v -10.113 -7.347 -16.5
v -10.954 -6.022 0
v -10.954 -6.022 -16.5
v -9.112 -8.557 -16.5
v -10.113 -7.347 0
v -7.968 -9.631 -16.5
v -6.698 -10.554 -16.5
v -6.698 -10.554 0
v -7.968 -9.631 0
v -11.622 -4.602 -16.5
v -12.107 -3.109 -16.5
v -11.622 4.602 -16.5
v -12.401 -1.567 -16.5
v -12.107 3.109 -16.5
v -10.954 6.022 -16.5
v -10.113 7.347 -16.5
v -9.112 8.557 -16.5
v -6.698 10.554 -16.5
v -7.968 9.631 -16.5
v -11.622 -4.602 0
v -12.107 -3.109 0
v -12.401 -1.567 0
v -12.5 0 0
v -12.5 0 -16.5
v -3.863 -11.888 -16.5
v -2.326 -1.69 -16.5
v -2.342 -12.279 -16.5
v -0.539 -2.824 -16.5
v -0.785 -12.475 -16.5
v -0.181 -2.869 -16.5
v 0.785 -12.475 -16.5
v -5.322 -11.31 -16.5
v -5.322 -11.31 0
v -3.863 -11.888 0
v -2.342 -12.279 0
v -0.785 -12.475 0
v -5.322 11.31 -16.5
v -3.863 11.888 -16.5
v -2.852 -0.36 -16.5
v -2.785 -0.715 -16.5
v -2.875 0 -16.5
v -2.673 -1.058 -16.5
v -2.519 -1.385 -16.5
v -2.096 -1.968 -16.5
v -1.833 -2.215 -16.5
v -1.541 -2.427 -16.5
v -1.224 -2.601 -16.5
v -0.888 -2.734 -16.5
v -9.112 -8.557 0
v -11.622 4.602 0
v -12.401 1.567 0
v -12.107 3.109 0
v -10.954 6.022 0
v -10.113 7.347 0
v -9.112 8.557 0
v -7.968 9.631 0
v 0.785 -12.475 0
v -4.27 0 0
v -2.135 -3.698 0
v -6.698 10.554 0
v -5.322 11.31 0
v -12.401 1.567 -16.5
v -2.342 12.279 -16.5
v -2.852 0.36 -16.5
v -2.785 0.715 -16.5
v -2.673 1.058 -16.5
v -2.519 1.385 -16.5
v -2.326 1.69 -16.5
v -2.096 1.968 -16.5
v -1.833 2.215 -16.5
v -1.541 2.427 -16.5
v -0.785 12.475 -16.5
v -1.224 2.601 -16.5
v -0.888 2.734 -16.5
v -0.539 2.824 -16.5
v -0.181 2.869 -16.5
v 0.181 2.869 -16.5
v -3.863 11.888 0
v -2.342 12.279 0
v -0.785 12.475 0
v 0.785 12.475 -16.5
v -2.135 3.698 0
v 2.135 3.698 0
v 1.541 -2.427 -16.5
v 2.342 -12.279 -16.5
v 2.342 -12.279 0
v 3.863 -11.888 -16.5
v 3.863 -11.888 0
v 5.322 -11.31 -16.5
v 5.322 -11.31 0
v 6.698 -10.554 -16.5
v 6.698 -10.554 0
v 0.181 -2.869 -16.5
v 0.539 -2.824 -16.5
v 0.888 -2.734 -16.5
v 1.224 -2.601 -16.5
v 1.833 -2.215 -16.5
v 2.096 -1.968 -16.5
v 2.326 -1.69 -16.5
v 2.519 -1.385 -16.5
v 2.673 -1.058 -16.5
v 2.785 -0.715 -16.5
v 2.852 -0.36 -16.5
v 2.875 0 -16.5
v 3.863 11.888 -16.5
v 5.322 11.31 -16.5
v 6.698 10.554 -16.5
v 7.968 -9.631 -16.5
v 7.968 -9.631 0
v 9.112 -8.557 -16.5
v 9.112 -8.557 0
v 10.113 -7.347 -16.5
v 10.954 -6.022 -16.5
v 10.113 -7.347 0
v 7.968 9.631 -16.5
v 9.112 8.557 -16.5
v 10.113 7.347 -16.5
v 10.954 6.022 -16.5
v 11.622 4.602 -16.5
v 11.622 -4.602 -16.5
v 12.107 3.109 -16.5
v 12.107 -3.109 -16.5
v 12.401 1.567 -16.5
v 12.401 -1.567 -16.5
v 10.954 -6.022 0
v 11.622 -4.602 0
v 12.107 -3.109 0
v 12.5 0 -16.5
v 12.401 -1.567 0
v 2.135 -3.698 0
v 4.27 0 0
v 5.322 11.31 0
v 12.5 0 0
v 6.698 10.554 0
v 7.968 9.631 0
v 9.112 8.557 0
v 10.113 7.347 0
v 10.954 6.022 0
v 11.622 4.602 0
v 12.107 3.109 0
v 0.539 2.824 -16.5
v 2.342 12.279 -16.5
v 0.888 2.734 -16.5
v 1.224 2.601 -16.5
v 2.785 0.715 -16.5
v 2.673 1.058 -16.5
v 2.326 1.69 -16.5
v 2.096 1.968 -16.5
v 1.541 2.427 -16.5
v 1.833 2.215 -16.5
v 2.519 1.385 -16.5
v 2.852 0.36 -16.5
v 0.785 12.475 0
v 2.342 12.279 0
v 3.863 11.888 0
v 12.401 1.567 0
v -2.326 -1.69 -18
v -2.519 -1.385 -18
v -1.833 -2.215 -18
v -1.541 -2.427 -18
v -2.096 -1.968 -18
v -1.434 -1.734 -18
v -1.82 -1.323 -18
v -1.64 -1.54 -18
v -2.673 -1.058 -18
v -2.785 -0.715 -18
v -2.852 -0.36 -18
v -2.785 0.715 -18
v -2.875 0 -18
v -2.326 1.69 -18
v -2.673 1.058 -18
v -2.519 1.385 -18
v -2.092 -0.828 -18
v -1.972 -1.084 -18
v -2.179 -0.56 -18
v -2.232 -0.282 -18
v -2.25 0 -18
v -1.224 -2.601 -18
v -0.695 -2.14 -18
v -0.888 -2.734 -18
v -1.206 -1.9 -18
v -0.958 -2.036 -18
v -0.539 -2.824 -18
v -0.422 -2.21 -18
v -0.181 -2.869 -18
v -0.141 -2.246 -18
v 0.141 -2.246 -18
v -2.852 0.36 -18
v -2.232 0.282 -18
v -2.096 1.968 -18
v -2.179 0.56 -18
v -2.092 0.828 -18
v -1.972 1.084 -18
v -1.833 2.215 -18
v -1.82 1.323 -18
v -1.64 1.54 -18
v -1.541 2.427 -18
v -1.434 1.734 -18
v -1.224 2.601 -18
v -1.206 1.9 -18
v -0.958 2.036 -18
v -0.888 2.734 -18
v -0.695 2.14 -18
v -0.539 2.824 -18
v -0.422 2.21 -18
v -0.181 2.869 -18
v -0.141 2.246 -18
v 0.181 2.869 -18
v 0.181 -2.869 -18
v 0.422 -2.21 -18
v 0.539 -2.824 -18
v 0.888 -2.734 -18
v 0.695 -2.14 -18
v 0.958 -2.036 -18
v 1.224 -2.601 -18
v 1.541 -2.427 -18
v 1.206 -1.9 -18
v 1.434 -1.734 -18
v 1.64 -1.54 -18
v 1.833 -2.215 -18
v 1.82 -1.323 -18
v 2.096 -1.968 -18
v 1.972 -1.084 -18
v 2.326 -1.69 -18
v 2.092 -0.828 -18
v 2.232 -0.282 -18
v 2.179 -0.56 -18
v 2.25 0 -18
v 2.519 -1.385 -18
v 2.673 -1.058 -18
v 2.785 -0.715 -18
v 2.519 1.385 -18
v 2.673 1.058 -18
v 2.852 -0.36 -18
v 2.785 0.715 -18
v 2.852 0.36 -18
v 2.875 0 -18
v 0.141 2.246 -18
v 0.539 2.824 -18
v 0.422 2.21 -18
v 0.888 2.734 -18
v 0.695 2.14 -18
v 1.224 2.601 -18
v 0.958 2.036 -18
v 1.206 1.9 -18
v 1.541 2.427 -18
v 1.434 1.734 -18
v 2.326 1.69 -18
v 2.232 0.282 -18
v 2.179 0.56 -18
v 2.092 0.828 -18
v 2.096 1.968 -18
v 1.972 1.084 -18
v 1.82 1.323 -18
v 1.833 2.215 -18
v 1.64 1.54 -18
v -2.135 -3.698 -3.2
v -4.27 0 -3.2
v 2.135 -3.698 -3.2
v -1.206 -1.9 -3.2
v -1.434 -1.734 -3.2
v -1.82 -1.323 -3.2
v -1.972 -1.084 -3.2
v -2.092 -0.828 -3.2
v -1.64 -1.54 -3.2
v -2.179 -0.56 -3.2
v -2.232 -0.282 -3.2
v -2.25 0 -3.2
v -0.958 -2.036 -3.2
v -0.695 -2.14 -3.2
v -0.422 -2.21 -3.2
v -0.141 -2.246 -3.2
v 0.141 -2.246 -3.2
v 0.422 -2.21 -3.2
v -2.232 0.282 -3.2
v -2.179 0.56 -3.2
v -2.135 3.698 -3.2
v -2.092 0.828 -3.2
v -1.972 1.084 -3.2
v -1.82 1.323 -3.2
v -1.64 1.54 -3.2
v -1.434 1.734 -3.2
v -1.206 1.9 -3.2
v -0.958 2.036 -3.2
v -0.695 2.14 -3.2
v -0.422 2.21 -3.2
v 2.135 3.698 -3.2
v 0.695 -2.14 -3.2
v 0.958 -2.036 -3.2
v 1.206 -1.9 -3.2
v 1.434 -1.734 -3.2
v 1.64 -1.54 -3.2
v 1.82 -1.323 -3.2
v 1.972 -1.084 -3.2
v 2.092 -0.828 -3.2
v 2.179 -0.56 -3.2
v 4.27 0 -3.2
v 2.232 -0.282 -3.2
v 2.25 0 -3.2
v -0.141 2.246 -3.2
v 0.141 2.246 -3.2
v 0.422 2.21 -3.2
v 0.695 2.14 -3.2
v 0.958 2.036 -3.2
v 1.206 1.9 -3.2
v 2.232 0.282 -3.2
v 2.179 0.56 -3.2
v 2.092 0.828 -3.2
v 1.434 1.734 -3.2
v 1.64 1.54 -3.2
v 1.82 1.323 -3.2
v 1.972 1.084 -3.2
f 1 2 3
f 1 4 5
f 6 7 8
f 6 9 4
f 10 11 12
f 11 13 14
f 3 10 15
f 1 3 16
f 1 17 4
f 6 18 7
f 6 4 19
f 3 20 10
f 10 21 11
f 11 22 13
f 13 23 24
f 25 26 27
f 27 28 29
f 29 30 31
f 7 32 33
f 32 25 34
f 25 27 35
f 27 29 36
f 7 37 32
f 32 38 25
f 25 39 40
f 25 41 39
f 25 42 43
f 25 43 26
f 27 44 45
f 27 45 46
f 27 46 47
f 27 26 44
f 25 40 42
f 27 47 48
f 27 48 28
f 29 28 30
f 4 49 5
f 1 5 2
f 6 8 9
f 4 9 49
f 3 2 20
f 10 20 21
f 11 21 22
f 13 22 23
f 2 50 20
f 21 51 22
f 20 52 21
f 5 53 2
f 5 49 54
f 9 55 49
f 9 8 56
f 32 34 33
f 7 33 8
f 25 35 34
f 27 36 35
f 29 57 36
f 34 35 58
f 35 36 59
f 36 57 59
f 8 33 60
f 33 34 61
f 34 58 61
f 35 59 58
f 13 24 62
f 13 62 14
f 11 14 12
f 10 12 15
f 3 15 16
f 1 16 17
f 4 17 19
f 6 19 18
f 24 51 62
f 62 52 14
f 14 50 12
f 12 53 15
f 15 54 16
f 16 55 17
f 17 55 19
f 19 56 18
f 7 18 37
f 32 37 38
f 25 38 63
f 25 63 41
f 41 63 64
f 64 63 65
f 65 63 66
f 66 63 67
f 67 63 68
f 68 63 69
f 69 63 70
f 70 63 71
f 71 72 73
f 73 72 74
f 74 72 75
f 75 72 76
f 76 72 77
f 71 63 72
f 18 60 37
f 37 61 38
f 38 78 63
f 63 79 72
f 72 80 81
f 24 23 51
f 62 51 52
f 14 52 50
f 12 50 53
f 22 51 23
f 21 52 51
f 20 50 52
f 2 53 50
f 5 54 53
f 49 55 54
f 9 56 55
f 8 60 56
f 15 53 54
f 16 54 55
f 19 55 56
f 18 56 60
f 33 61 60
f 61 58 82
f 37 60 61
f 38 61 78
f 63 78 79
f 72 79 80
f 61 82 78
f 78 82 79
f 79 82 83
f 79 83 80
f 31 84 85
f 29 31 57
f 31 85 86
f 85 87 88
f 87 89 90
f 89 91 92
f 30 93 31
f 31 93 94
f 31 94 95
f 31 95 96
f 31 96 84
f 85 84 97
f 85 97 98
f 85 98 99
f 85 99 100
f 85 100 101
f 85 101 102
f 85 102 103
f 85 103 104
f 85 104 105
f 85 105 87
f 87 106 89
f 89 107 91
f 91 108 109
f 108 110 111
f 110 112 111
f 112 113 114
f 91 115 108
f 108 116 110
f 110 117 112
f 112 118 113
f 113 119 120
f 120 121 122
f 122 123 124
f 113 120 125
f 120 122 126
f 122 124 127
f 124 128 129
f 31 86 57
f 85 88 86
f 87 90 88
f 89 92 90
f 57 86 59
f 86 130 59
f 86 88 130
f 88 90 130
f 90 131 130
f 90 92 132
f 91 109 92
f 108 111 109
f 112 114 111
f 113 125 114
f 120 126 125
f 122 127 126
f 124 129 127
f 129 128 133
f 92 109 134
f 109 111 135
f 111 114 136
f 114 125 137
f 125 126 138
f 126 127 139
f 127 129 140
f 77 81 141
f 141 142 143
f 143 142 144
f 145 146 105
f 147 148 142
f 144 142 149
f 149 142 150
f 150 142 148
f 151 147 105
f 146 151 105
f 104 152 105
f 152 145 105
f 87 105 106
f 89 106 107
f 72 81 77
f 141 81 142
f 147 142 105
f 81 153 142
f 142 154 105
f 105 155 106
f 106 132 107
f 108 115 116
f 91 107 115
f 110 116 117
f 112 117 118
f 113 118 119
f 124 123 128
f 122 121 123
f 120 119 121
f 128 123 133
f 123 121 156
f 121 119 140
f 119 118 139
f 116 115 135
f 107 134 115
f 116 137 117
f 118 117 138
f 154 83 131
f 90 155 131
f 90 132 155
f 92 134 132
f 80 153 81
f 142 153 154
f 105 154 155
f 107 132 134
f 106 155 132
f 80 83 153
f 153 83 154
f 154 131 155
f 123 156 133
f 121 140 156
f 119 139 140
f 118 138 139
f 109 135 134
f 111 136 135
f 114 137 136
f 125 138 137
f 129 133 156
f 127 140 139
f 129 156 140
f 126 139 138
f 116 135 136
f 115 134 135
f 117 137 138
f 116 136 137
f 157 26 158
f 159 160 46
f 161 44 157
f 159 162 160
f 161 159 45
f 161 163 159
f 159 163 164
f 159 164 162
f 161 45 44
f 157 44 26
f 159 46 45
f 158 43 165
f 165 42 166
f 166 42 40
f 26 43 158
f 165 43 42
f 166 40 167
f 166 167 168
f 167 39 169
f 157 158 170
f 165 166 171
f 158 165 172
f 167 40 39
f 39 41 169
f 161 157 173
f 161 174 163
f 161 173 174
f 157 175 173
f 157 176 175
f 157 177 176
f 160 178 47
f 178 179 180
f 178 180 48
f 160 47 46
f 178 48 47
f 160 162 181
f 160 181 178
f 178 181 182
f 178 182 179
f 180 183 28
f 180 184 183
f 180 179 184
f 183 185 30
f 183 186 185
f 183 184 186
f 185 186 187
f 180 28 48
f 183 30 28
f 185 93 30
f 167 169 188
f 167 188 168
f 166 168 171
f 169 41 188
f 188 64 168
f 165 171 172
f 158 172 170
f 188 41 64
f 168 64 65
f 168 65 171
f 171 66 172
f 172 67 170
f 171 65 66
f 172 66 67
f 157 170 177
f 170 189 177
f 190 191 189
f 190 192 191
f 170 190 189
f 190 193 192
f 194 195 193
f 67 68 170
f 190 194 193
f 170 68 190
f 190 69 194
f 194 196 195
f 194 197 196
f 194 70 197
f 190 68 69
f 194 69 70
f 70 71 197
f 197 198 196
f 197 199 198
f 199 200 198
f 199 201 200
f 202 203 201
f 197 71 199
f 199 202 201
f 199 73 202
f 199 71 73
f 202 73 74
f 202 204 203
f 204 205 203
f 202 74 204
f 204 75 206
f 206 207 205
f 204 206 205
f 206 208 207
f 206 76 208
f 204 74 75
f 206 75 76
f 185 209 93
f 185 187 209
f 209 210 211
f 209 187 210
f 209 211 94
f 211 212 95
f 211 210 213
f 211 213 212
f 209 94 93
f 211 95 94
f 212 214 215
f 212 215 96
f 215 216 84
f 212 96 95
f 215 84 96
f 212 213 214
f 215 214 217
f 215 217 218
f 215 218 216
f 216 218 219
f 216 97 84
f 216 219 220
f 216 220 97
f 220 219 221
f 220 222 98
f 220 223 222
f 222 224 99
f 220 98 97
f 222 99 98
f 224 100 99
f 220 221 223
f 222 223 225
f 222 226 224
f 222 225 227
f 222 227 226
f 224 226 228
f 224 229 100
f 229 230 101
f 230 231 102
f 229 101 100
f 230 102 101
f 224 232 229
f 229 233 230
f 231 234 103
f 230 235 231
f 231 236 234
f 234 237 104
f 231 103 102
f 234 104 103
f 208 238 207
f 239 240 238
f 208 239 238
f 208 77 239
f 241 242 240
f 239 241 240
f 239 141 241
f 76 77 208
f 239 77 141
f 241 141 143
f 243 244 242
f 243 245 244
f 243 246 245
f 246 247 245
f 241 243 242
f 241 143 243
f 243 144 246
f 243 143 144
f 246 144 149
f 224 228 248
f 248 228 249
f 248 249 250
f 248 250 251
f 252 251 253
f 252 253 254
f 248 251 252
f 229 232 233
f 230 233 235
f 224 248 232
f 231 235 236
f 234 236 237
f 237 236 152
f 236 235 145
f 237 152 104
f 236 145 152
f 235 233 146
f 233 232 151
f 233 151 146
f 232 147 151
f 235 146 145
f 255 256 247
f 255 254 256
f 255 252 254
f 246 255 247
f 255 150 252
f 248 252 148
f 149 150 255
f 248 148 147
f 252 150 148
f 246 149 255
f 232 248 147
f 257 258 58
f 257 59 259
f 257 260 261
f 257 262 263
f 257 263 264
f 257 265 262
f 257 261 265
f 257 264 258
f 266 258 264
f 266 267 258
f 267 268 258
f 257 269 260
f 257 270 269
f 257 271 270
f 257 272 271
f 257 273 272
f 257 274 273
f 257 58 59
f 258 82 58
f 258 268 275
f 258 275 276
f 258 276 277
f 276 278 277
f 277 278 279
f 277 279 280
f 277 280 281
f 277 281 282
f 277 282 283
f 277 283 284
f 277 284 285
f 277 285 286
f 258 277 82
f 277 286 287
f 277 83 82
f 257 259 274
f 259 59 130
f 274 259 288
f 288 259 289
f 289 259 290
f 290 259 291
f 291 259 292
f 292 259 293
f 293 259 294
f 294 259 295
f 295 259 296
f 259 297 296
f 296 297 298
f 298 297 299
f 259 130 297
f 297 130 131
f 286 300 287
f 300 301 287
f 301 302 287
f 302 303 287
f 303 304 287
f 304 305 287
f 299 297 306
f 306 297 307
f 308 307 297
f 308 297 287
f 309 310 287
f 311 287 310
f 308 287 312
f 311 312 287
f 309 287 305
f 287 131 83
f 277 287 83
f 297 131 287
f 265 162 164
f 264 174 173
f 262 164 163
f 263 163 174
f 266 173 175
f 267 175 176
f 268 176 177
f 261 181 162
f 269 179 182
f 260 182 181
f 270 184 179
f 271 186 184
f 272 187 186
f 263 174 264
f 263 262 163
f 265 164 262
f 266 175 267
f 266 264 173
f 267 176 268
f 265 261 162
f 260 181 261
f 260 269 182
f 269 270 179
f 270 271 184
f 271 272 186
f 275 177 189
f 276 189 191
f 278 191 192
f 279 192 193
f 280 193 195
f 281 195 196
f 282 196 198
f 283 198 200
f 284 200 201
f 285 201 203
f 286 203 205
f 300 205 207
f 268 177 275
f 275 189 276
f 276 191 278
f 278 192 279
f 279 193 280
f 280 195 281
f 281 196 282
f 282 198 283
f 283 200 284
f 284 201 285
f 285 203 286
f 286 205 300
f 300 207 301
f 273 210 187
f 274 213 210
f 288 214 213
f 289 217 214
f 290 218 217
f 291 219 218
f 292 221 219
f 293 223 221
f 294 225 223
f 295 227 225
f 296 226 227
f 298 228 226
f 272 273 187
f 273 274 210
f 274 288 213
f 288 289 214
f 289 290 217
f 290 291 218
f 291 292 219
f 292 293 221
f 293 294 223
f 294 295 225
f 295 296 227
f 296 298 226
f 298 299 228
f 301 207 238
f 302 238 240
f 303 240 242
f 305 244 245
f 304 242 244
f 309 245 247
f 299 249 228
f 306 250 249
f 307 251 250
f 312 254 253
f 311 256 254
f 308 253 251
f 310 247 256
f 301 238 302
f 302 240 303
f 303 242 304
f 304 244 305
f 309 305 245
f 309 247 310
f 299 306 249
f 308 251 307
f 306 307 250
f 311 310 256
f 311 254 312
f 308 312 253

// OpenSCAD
$fn = 50;

difference() {
	union() {
		translate(v = [0, 0, -16.5]) {
			cylinder(h = 16.5, r = 12.5);
		}
		#translate(v = [0, 0, -18.0]) {
			cylinder(h = 18, r = 2.875);
		}
	}
	union() {
		translate(v = [0, 0, 0]) {
			rotate(a = [0, 0, 0]) {
				difference() {
					union() {
						translate(v = [0, 0, -3.2]) {
							linear_extrude(height = 3.2) {
								polygon(points = [[4.2698, 0.0], [2.1349000000000005, 3.697755269078796], [-2.134899999999999, 3.6977552690787965], [-4.2698, 5.228996902999369e-16], [-2.134900000000002, -3.6977552690787956], [2.1348999999999974, -3.697755269078798]]);
							}
						}
					}
					union();
				}
			}
		}
		#translate(v = [0, 0, -100.0]) {
			cylinder(h = 200, r = 2.25);
		}
	}
}
